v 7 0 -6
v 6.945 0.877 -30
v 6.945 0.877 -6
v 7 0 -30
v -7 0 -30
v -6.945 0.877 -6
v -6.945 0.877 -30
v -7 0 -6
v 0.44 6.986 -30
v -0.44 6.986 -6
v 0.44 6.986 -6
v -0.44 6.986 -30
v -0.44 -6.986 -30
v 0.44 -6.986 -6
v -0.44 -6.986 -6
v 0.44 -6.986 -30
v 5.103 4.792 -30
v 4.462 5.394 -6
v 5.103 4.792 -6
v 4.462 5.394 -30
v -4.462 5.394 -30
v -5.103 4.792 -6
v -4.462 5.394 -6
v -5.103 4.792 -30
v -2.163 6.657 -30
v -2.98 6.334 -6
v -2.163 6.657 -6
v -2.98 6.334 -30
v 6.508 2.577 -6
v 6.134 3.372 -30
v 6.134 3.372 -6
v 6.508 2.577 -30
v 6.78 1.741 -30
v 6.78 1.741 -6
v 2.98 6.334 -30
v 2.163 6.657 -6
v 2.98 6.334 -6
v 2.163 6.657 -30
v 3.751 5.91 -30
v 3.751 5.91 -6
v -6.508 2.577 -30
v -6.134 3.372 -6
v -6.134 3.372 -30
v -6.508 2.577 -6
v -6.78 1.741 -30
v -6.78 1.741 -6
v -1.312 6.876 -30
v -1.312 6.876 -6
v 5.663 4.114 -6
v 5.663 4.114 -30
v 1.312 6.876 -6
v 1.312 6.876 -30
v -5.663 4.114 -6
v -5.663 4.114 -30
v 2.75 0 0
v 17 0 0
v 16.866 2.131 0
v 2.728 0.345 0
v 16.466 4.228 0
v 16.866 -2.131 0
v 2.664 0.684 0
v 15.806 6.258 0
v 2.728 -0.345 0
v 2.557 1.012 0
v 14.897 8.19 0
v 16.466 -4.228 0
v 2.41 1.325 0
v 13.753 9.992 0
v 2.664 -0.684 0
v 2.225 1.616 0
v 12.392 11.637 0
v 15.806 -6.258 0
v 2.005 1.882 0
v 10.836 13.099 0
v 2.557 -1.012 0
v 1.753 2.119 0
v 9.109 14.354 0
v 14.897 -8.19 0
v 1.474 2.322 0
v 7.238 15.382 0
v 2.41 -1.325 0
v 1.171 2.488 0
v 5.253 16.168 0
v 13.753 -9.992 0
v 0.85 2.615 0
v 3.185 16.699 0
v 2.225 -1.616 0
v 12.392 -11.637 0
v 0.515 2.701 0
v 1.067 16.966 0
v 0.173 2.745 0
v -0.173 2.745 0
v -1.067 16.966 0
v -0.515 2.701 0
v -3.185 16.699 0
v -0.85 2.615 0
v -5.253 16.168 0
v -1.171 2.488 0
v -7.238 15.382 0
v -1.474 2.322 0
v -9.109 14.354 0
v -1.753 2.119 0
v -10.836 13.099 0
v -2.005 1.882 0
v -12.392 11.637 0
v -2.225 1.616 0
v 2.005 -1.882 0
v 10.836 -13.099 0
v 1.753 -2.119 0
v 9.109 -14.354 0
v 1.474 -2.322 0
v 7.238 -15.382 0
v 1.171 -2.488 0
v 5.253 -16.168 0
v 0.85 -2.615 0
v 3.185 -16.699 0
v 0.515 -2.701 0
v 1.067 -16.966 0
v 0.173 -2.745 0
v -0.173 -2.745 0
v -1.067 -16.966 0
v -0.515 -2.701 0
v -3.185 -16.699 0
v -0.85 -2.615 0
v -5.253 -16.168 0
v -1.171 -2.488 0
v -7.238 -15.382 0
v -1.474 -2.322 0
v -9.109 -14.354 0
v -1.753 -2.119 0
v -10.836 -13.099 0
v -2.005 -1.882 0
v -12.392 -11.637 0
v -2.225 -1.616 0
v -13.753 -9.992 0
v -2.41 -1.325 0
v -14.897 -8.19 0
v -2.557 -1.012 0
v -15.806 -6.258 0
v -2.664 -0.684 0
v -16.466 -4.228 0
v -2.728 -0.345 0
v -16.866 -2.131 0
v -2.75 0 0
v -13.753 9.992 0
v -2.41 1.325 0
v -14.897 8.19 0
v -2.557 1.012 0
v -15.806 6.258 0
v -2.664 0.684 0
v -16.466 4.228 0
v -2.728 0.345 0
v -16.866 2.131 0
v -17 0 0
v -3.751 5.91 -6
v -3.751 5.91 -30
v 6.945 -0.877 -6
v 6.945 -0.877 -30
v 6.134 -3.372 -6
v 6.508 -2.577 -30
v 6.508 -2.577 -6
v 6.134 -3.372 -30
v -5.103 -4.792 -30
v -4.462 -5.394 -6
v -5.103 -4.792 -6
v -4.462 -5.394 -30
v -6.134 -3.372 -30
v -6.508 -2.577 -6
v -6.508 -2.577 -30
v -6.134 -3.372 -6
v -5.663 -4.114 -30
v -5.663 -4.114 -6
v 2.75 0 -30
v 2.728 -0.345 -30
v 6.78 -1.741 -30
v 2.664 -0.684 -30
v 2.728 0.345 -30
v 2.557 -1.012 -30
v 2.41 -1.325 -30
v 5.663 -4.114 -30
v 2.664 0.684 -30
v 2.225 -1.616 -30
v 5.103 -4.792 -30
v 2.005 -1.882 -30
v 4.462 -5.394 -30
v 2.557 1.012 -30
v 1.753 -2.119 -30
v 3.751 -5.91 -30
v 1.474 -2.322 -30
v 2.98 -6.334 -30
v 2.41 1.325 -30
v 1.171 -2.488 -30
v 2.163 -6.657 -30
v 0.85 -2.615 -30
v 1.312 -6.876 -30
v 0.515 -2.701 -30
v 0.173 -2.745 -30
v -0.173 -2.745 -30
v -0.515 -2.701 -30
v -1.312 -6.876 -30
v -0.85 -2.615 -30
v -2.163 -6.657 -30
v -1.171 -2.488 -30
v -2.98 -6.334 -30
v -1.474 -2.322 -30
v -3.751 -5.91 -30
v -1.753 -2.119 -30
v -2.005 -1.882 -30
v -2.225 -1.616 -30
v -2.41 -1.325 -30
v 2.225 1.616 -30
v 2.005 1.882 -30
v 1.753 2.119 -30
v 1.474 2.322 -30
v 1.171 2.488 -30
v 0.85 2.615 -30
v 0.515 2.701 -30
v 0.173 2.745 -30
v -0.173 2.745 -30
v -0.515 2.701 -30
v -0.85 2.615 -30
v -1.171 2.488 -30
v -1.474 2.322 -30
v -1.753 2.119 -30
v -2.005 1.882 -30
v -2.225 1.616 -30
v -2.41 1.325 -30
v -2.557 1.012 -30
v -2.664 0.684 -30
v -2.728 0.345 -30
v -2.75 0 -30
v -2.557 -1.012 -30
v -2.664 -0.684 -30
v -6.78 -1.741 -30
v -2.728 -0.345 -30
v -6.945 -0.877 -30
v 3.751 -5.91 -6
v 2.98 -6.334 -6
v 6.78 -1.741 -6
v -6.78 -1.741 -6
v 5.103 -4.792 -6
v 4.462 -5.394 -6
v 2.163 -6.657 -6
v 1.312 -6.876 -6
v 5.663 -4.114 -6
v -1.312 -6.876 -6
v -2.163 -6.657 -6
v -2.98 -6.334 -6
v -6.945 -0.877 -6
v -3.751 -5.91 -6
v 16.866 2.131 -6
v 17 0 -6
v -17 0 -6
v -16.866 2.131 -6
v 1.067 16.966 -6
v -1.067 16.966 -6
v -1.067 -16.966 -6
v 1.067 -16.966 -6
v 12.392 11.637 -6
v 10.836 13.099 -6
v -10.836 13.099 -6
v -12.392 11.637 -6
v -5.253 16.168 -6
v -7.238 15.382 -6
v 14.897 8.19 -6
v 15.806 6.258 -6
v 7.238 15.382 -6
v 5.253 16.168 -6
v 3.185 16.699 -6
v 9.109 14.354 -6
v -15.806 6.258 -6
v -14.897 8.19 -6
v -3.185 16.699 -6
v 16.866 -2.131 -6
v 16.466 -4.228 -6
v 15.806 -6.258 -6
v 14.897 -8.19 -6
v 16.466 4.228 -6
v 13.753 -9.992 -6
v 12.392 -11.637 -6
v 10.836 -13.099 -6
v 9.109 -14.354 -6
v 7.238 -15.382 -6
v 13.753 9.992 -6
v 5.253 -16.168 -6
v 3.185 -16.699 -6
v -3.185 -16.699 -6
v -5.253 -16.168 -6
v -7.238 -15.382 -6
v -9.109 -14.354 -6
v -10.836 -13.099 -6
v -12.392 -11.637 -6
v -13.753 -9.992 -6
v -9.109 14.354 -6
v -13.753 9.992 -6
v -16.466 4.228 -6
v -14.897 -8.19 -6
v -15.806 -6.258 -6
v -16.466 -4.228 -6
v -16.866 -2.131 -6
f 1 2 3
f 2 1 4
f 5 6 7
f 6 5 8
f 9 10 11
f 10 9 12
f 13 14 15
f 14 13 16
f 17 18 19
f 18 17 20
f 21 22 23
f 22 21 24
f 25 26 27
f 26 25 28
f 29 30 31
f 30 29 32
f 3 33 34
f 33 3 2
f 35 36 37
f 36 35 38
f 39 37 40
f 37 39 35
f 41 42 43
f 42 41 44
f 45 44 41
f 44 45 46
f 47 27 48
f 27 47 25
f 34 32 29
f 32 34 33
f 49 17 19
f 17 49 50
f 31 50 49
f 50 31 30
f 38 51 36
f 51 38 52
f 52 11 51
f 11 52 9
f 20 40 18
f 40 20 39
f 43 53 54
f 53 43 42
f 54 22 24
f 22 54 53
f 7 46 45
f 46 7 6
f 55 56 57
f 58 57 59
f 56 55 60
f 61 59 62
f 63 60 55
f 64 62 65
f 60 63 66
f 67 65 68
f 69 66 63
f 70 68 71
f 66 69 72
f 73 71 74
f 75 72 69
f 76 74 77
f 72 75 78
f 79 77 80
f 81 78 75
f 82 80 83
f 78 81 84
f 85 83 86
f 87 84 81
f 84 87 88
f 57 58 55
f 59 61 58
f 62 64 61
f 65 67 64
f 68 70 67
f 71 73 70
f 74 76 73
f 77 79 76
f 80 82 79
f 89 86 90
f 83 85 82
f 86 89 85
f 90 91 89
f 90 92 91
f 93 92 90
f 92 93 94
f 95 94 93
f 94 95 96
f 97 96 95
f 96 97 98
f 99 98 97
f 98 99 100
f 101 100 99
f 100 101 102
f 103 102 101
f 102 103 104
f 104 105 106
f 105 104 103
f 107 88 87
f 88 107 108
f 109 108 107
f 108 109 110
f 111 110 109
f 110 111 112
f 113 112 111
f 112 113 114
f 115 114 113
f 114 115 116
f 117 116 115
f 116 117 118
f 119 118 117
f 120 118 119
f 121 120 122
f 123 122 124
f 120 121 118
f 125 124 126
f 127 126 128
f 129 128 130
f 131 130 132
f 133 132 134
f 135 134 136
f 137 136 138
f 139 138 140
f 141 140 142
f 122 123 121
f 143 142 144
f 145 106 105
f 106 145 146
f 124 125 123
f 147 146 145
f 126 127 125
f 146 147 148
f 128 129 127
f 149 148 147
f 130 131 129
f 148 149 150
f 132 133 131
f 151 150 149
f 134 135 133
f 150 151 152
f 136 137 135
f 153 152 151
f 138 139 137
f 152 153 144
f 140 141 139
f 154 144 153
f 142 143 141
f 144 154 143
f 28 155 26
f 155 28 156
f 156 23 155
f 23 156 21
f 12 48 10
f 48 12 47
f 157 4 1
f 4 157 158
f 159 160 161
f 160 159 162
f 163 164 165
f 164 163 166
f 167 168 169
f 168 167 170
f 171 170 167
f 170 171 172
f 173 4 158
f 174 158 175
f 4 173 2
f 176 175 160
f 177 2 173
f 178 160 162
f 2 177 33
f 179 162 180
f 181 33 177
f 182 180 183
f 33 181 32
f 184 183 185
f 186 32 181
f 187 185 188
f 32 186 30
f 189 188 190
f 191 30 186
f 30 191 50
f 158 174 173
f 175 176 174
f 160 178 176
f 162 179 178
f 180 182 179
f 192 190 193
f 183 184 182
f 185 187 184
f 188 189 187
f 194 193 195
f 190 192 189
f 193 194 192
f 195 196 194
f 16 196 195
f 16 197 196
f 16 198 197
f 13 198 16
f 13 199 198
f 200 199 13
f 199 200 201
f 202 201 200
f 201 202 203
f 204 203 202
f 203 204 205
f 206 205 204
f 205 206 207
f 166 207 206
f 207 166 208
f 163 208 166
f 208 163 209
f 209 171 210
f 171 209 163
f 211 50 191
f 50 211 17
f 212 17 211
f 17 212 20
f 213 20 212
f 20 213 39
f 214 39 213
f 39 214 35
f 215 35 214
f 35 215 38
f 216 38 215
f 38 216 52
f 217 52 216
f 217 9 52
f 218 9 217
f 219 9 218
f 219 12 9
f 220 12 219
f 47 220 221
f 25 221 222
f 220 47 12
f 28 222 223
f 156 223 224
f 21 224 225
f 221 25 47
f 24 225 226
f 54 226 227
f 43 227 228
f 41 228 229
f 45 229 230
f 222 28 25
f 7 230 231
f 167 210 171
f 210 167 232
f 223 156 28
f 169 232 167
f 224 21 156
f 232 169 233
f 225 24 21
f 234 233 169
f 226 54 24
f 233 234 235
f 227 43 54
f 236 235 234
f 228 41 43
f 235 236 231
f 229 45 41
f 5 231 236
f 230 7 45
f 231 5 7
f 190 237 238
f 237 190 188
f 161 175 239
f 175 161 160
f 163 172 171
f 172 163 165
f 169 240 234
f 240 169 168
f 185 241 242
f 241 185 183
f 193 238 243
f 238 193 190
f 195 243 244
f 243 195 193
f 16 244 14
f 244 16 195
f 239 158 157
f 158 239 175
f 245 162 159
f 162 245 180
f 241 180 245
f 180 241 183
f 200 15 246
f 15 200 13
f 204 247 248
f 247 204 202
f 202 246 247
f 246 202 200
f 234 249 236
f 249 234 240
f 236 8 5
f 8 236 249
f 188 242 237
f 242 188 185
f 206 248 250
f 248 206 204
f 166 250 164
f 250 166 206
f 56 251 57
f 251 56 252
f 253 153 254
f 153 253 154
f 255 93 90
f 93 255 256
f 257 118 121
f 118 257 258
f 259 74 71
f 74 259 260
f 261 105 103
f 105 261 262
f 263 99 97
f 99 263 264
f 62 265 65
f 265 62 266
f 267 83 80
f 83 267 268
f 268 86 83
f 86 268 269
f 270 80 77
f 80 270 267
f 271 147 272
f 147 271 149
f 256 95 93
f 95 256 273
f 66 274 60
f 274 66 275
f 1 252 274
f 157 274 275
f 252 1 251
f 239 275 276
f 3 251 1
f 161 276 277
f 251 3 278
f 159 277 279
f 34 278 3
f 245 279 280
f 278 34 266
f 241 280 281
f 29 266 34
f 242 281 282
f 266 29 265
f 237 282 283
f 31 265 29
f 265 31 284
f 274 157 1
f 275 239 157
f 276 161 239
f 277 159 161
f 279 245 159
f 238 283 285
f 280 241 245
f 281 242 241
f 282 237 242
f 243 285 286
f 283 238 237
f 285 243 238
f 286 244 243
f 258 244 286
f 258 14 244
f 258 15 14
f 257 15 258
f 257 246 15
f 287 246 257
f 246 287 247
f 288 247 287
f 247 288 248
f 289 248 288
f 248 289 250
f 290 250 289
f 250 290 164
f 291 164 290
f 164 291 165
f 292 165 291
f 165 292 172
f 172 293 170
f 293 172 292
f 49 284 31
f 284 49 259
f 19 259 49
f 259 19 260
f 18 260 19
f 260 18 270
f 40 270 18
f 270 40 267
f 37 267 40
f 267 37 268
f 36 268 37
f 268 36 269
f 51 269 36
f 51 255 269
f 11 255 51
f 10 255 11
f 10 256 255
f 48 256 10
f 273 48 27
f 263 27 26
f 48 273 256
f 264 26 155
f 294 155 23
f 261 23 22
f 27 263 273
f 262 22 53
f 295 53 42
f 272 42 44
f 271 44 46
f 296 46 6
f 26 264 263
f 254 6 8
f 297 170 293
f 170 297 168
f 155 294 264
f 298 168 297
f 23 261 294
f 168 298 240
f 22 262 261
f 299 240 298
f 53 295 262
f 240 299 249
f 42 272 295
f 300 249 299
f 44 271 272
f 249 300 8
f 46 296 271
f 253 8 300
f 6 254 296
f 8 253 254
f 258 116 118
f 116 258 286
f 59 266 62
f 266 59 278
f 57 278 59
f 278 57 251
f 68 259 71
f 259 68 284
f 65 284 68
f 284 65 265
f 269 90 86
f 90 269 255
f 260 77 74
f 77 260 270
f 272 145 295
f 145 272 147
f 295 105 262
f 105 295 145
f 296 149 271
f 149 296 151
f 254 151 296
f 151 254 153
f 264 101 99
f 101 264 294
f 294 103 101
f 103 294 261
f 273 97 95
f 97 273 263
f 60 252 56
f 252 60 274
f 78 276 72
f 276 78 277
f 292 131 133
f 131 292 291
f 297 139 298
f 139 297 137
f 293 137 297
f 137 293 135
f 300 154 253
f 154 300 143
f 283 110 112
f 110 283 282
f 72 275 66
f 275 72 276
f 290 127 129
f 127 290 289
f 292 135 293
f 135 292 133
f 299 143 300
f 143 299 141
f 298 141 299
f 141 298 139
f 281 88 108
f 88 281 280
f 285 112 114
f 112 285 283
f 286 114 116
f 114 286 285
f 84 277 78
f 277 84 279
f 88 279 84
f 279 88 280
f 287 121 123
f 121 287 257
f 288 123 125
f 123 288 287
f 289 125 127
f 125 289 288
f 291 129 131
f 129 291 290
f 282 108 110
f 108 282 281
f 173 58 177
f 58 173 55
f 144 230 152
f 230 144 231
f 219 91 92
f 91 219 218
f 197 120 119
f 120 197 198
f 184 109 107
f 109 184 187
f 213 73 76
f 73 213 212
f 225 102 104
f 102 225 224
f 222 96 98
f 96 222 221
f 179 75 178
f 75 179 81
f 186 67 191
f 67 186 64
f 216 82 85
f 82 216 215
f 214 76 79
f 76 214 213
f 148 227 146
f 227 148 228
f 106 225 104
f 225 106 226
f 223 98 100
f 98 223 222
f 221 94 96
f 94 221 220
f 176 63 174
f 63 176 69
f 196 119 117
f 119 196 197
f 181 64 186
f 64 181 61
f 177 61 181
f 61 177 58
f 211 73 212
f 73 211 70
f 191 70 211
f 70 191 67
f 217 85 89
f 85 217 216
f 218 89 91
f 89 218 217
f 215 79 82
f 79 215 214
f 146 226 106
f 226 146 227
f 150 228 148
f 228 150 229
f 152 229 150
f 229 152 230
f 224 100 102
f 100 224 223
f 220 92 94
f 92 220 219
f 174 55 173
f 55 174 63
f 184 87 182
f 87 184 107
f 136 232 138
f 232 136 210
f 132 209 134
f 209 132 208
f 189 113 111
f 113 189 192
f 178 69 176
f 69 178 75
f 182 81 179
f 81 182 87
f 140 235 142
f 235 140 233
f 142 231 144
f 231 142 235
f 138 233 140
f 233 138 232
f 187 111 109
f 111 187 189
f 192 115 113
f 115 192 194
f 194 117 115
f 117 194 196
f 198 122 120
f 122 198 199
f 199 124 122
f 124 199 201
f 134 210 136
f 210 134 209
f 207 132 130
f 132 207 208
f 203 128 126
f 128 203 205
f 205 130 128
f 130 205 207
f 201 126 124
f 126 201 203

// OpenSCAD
$fn = 50;


difference() {
	union() {
		translate(v = [0, 0, -30.0000000000]) {
			cylinder(h = 30, r = 7.0000000000);
		}
		translate(v = [0, 0, -6.0000000000]) {
			cylinder(h = 6, r = 17.0000000000);
		}
	}
	union() {
		#translate(v = [0, 0, -30]) {
			cylinder(h = 30, r = 2.7500000000);
		}
	}
}
